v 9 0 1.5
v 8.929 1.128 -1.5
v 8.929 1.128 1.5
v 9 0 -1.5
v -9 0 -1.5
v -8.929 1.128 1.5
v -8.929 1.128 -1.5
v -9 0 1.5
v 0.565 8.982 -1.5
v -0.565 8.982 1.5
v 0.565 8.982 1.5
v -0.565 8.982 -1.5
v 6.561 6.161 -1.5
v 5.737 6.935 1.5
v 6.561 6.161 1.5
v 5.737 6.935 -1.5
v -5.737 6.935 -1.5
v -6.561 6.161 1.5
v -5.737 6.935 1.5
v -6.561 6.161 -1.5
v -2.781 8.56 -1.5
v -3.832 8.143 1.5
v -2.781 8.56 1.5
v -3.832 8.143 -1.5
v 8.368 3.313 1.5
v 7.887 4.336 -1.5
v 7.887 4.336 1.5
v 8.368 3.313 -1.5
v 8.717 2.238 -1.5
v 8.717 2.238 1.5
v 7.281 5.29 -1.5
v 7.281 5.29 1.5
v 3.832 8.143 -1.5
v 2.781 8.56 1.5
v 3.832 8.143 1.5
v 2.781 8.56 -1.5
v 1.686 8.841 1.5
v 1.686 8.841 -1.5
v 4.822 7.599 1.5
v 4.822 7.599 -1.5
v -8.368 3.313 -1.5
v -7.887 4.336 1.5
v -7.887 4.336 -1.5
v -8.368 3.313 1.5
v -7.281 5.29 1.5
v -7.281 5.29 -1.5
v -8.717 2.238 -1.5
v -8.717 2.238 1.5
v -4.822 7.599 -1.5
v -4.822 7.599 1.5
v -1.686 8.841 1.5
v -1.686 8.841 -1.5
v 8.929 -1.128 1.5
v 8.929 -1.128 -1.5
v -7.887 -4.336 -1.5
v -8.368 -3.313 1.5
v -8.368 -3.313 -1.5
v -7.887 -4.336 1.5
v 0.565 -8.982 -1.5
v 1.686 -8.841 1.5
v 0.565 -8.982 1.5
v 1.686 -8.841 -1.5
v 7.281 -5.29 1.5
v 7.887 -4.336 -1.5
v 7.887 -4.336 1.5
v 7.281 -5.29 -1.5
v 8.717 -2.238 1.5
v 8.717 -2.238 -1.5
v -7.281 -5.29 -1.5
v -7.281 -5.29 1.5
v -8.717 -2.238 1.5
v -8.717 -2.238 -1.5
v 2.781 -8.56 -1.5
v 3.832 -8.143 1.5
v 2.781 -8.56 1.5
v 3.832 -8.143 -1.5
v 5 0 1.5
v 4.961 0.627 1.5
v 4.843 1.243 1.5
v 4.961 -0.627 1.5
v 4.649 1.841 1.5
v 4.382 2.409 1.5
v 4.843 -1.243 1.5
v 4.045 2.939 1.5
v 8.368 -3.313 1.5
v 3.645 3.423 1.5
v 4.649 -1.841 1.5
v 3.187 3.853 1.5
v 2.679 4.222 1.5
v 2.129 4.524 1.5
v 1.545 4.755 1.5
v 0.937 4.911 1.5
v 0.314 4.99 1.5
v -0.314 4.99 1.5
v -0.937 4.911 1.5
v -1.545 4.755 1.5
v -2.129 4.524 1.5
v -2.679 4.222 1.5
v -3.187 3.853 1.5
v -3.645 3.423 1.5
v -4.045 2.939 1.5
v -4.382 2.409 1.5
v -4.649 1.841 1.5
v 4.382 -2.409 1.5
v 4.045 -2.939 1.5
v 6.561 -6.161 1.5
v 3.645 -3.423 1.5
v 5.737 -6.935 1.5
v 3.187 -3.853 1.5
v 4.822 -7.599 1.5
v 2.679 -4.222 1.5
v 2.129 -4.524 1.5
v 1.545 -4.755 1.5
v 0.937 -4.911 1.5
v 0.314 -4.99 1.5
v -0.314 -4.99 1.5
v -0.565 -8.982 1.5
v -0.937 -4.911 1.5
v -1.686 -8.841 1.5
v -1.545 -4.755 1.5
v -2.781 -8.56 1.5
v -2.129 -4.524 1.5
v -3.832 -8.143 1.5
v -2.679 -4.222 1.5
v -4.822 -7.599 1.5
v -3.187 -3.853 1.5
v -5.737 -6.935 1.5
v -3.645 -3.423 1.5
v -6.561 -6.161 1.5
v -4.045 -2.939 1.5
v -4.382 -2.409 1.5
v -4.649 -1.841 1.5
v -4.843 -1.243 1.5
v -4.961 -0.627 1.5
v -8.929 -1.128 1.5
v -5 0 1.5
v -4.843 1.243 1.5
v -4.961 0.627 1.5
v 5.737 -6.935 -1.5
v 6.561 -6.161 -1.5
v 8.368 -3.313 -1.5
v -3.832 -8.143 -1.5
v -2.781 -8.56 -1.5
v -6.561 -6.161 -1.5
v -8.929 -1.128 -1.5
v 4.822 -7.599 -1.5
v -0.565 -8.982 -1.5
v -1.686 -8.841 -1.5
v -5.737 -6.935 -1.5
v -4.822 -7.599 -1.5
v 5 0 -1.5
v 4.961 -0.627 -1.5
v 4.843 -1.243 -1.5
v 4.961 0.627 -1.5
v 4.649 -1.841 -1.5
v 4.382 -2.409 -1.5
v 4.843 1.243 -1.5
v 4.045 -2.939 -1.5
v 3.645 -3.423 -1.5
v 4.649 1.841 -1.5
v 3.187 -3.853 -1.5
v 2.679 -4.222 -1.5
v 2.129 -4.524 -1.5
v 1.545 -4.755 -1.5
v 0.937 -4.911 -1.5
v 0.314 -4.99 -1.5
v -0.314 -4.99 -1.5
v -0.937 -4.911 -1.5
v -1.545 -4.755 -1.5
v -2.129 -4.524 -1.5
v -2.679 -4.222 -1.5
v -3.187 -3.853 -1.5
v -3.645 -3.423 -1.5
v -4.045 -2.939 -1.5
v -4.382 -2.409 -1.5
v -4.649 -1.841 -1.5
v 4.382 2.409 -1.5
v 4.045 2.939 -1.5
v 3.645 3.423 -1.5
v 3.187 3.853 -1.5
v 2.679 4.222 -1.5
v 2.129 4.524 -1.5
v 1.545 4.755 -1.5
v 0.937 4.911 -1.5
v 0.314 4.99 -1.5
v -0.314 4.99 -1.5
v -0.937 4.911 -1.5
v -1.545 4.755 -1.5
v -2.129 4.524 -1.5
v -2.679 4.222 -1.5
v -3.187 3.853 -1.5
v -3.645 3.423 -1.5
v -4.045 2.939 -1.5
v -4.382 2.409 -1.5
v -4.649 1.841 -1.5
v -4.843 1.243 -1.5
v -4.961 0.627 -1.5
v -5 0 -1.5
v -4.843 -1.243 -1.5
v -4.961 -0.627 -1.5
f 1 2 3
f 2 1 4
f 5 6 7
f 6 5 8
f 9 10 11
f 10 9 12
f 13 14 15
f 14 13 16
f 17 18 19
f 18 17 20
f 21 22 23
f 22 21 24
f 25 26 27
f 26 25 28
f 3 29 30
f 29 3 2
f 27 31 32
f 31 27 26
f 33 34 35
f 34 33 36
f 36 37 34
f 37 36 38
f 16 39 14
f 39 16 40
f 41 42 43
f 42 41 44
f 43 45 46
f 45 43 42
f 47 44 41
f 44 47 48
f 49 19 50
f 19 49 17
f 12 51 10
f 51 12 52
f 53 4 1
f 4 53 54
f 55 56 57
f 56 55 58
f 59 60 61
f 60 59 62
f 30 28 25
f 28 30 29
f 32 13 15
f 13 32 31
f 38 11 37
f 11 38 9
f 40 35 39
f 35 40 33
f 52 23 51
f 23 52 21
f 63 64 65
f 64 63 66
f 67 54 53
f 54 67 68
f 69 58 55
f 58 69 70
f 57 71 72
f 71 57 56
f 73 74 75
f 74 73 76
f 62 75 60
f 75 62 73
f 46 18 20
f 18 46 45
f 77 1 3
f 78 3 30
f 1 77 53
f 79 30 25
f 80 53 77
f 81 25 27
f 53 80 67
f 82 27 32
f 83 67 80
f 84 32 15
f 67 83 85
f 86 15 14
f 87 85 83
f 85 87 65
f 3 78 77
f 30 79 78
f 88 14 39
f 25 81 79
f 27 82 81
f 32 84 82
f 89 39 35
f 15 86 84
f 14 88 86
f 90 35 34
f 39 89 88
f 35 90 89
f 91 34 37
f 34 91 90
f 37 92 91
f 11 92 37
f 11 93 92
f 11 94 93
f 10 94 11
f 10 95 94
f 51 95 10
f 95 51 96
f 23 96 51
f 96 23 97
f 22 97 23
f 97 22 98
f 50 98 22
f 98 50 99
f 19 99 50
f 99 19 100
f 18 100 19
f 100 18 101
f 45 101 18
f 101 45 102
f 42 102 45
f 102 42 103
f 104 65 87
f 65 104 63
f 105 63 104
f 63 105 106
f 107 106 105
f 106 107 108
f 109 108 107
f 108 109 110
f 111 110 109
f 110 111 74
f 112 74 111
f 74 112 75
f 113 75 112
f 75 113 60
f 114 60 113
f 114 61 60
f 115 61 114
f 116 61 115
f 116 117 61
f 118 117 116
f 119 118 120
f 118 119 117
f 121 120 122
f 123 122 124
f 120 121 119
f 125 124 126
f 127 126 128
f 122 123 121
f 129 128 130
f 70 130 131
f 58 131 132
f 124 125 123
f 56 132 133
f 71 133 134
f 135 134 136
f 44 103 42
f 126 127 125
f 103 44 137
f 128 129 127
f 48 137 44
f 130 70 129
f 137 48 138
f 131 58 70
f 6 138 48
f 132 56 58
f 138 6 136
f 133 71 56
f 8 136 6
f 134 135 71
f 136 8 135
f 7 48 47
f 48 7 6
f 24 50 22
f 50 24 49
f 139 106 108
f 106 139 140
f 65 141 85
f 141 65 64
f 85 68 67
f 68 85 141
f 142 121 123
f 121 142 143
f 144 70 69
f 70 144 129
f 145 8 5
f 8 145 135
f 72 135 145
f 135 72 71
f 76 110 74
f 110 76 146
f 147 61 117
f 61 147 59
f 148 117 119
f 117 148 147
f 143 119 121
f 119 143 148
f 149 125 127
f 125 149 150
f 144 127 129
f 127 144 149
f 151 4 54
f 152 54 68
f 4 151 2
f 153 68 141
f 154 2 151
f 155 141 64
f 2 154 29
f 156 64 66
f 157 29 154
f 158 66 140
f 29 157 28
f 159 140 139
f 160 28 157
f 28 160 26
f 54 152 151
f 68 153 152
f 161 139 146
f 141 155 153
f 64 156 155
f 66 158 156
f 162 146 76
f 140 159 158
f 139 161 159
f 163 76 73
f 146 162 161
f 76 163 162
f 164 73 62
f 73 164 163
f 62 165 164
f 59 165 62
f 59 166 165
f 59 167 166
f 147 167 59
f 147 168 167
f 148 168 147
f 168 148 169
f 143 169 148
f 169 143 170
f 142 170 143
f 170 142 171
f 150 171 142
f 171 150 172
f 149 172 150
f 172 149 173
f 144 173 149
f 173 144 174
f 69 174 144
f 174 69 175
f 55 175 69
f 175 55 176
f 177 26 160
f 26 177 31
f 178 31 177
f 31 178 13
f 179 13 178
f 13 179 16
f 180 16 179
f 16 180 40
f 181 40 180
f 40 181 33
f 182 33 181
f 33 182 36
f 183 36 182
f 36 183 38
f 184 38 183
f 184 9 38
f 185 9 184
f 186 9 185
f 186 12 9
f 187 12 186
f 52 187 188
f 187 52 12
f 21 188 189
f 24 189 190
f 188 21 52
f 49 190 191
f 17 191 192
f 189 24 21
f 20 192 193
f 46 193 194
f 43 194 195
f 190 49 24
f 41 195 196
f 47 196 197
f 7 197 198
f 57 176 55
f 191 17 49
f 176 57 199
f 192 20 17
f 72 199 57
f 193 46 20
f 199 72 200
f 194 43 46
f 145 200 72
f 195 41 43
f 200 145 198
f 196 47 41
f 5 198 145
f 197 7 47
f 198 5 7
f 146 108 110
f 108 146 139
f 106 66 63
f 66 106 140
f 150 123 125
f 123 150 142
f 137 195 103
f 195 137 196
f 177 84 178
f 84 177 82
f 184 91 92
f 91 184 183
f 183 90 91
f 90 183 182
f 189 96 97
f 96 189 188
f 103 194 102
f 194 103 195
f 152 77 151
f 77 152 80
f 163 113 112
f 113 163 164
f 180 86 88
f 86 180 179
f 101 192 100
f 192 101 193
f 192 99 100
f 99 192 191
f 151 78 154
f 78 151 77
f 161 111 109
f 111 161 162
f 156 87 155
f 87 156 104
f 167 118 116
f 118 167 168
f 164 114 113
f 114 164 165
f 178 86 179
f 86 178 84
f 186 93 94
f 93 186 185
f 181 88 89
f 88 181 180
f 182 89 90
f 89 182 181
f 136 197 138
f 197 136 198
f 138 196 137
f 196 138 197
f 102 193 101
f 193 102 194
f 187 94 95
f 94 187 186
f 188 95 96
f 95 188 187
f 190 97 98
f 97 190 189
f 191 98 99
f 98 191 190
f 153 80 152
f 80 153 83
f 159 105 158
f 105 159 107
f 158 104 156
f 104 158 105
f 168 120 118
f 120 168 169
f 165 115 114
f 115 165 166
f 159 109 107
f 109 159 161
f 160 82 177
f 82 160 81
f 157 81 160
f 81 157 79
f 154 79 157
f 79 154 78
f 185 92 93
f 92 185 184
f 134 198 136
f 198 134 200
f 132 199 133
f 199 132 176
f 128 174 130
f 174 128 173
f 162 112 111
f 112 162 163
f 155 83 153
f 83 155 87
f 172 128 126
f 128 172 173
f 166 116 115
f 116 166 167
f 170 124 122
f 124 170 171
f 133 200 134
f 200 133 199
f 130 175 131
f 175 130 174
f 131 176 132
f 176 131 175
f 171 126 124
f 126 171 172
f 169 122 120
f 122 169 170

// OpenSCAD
$fn = 50;


difference() {
	union() {
		translate(v = [0, 0, -1.5000000000]) {
			cylinder(h = 3, r = 9.0000000000);
		}
	}
	union() {
		translate(v = [0, 0, -100.0000000000]) {
			cylinder(h = 200, r = 5.0000000000);
		}
	}
}
